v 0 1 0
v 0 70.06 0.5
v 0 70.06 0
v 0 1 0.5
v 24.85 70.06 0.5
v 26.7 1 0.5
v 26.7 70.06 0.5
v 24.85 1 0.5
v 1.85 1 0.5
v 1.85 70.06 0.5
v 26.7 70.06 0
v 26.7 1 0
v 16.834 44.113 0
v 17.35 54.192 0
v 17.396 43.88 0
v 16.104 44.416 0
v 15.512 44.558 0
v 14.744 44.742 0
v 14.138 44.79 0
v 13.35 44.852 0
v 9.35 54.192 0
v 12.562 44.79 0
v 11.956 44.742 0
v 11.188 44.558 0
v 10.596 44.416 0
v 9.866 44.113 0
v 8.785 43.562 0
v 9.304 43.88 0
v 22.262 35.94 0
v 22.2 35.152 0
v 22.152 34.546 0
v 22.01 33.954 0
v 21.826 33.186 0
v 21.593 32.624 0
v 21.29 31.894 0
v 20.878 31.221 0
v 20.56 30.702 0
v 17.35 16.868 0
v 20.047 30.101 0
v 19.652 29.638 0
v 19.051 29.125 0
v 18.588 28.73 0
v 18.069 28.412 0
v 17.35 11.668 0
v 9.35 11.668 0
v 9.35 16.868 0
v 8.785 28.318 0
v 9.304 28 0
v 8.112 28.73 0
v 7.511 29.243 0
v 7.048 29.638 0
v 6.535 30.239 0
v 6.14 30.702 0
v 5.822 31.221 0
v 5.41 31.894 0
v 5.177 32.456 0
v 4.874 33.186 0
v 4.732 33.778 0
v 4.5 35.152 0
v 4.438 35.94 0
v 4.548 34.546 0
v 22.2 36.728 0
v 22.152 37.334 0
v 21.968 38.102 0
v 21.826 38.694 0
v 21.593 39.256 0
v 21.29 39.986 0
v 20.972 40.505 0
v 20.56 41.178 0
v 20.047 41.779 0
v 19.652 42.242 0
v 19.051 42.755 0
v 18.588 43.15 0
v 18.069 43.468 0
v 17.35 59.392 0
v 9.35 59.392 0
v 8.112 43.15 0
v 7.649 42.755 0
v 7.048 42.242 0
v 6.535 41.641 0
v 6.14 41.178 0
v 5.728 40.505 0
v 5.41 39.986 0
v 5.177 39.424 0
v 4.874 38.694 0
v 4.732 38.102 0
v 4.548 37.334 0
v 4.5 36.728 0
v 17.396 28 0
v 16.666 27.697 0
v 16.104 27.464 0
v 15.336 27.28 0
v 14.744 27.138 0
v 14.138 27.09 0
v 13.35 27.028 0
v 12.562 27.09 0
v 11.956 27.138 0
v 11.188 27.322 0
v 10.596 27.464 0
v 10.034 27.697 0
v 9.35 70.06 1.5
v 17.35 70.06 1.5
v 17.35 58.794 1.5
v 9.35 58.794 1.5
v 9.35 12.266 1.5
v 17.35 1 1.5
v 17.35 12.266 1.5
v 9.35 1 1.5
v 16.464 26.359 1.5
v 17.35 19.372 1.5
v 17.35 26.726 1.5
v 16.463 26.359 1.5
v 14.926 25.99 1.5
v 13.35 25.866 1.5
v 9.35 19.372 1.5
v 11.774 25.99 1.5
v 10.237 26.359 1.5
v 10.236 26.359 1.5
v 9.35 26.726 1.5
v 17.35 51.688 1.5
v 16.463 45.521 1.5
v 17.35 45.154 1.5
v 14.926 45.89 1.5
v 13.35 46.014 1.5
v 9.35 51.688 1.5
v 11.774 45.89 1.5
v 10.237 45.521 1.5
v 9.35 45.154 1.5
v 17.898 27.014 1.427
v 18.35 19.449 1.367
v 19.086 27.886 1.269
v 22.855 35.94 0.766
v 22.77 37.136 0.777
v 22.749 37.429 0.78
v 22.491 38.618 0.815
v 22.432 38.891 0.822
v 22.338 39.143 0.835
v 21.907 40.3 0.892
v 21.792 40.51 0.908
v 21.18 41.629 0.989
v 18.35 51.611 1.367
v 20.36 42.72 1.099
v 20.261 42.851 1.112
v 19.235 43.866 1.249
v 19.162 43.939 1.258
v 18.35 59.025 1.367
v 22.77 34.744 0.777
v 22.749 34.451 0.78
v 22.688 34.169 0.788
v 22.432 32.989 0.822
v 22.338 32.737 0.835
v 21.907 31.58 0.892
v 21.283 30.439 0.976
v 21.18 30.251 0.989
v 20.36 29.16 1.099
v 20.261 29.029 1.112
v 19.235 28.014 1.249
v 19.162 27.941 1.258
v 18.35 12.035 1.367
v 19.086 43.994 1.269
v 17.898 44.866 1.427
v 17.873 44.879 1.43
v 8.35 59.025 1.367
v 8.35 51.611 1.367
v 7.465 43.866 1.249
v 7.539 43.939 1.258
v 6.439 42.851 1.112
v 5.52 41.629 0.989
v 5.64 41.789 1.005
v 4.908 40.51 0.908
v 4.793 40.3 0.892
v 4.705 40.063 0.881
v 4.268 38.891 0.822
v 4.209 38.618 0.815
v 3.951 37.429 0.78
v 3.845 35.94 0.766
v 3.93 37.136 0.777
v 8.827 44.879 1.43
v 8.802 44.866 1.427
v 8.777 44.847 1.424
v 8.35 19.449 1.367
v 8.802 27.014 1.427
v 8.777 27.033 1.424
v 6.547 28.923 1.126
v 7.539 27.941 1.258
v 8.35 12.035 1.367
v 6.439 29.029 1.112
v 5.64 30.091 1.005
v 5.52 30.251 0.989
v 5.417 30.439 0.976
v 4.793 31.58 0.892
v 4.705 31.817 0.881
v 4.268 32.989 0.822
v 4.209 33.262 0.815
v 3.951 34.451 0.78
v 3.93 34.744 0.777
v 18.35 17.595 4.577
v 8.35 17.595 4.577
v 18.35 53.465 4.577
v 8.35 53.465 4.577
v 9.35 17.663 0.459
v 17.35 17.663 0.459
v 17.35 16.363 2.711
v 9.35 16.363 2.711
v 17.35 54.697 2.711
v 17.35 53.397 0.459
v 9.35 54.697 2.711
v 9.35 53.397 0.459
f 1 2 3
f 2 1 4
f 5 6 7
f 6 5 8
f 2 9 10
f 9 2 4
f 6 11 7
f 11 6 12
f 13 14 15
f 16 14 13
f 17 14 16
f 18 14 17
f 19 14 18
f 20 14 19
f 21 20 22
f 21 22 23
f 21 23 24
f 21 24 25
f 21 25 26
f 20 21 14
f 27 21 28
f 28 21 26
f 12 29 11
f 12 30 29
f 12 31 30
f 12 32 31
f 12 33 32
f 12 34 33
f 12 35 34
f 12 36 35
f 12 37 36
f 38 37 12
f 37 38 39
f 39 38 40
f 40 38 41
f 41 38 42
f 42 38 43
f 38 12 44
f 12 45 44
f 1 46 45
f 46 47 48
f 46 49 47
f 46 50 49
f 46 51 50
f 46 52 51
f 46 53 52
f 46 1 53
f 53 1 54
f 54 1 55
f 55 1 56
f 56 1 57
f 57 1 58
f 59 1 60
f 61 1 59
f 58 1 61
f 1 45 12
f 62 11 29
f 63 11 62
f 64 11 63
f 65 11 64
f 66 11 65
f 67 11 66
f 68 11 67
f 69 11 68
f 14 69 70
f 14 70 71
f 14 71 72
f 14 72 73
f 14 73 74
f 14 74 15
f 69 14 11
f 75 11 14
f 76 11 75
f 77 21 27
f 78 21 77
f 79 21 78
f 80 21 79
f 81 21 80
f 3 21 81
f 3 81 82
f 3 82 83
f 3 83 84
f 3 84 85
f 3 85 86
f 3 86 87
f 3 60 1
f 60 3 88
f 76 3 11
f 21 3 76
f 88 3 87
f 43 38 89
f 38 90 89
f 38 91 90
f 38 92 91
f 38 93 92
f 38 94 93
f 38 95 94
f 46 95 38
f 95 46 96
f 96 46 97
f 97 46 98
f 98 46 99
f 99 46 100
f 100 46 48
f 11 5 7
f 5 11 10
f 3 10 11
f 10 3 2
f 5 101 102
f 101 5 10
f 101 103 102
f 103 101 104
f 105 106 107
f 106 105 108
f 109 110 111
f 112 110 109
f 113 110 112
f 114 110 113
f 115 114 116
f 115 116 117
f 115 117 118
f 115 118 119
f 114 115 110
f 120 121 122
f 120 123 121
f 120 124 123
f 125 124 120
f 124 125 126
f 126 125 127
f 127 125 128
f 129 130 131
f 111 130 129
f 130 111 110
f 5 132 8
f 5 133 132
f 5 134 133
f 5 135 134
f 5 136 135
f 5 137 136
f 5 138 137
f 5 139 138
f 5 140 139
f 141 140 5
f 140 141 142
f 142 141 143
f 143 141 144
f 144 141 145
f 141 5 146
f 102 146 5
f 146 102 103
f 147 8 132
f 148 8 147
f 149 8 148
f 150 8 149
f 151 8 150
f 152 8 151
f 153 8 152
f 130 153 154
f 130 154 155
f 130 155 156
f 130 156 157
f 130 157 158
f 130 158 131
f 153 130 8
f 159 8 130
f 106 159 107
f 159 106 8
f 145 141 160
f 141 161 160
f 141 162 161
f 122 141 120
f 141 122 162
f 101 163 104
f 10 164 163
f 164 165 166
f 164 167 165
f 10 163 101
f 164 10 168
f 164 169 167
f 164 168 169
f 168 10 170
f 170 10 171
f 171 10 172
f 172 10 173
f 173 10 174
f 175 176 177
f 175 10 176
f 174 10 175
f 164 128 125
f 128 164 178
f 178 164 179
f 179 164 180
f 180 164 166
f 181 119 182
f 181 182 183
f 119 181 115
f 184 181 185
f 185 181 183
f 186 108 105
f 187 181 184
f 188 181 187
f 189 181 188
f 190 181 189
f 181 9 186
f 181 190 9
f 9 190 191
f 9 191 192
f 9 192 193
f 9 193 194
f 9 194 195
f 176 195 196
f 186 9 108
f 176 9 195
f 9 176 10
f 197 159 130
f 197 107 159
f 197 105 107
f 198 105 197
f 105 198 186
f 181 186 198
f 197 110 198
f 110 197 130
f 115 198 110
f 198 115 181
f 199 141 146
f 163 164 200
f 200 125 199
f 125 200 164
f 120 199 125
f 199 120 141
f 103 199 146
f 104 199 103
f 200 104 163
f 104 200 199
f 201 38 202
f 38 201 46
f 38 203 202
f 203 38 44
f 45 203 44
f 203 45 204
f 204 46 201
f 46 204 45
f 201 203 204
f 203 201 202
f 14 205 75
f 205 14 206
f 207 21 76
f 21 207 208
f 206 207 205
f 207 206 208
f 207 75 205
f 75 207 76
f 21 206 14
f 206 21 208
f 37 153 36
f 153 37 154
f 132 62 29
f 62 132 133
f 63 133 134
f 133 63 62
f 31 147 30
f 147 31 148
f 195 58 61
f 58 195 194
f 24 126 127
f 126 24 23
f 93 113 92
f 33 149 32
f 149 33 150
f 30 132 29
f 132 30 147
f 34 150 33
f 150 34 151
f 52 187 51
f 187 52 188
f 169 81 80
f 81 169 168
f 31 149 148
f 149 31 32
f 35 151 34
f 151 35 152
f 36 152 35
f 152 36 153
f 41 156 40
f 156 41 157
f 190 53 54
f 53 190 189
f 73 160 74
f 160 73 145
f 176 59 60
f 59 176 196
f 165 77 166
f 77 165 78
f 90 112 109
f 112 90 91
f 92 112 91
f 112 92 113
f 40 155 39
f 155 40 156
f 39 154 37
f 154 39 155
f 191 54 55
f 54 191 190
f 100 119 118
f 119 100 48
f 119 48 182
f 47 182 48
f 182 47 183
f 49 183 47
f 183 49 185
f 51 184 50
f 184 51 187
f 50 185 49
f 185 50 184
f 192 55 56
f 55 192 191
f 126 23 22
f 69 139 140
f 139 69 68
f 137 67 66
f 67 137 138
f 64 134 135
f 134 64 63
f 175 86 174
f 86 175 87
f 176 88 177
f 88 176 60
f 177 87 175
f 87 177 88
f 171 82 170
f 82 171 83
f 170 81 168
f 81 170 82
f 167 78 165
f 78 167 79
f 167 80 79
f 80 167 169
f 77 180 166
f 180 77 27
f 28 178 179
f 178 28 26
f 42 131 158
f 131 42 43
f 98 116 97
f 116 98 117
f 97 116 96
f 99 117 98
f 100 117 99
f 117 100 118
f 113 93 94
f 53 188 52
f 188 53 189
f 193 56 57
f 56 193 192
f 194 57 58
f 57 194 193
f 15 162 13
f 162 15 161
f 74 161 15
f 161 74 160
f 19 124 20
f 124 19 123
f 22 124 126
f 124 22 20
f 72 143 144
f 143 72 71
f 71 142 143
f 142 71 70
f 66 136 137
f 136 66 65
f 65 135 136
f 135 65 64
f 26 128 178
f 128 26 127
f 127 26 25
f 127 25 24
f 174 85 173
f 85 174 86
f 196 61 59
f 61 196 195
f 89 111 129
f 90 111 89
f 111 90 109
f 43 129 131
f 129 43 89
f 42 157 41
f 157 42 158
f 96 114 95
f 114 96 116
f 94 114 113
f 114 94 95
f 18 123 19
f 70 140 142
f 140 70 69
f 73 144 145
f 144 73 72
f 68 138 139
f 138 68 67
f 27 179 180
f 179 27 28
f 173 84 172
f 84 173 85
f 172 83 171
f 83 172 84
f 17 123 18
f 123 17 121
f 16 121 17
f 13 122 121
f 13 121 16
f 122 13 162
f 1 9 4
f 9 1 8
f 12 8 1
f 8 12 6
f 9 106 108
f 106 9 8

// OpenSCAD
$fn=40;

/* Diffuser Lense For A Particular Project (OpenSCAD) */

/* Camera */
cam_dia = 10.5;

/* LED PCB */
ledpcbw = 26.7;
ledpcbh = 71.88;
ledpcb_thickness = 3.47;
ledpcb_header_pos = 25;
ledpcb_header_w = 9;
holedia = (cam_dia + 5);

/* Diffuser */
diffuserw=ledpcbw;
diffuserh=ledpcbh-1.82;
thickness=ledpcb_thickness-1.59;

/* Top Diffuser */
diffuser_top_h=0.5;

/* Bottom Diffuser */
diffuser_bottom_h=1;

/* Enclosure hole */
enclosurew = ledpcb_header_pos-2;

/* SMD LED */
ledh = 2.76-1.59;
ledw = 4;
ledd= 1.6;

/* INSET */
led_mount_inset = 15;
led_mount_angle = 180-60;
led_mount_tol=1;
led_mount_thickness=2;

module led_mount(rotation, w, d, h)
{
  rotate([rotation,0,0])
    union()
    {
      translate([ledpcbw/2 - w/2, -d/2, -h])
        cube([w,d,h+10]);
    }
}

difference()
{
  union()
  { 
    // Main object
    difference()
    {
      union()
      { // Main Body
        
        // Top Diffuser
        cube([diffuserw,diffuserh,diffuser_top_h]);
        
        // Bottom Diffuser
        bottom_flat_width = ledw;
        hull()
        {
          translate([(diffuserw - enclosurew)/2,0,0])
            cube([enclosurew,diffuserh,diffuser_top_h]);
          translate([ledpcbw/2 - bottom_flat_width,0,diffuser_top_h])
            cube([bottom_flat_width*2, diffuserh, diffuser_bottom_h]);
        }
        
        // LED Holes
        translate([0,1+led_mount_inset,diffuser_bottom_h])
          led_mount(led_mount_angle,ledw+led_mount_tol*4+led_mount_thickness,ledd+led_mount_tol+led_mount_thickness,ledh+led_mount_thickness);
        translate([0,diffuserh-led_mount_inset,diffuser_bottom_h])
          led_mount(-led_mount_angle,ledw+led_mount_tol*4+led_mount_thickness,ledd+led_mount_tol+led_mount_thickness,ledh+led_mount_thickness);
      }

      // LED Holes
      translate([0,1+led_mount_inset,diffuser_bottom_h])
        led_mount(led_mount_angle,ledw+led_mount_tol*4,ledd+led_mount_tol,ledh);
      translate([0,diffuserh-led_mount_inset,diffuser_bottom_h])
        led_mount(-led_mount_angle,ledw+led_mount_tol*4,ledd+led_mount_tol,ledh);

      // Camera Hole
      translate([ledpcbw/2,ledpcbh/2,-thickness/2])
        cylinder(thickness*3,d=holedia);

      // Camera Hole Bottom Lip
      translate([ledpcbw/2,ledpcbh/2, diffuser_top_h+diffuser_bottom_h-3+0.001])
        cylinder(3, d1=holedia, d2=holedia*1.3);
     }
  }
  
  /* Trimming */
  translate([0,0,-thickness])
    cube([diffuserw,1,thickness*4]);
  
  /* Remove bottom */
  translate([0,0,-5])
    cube([1000,1000,10], center=true);  
}
